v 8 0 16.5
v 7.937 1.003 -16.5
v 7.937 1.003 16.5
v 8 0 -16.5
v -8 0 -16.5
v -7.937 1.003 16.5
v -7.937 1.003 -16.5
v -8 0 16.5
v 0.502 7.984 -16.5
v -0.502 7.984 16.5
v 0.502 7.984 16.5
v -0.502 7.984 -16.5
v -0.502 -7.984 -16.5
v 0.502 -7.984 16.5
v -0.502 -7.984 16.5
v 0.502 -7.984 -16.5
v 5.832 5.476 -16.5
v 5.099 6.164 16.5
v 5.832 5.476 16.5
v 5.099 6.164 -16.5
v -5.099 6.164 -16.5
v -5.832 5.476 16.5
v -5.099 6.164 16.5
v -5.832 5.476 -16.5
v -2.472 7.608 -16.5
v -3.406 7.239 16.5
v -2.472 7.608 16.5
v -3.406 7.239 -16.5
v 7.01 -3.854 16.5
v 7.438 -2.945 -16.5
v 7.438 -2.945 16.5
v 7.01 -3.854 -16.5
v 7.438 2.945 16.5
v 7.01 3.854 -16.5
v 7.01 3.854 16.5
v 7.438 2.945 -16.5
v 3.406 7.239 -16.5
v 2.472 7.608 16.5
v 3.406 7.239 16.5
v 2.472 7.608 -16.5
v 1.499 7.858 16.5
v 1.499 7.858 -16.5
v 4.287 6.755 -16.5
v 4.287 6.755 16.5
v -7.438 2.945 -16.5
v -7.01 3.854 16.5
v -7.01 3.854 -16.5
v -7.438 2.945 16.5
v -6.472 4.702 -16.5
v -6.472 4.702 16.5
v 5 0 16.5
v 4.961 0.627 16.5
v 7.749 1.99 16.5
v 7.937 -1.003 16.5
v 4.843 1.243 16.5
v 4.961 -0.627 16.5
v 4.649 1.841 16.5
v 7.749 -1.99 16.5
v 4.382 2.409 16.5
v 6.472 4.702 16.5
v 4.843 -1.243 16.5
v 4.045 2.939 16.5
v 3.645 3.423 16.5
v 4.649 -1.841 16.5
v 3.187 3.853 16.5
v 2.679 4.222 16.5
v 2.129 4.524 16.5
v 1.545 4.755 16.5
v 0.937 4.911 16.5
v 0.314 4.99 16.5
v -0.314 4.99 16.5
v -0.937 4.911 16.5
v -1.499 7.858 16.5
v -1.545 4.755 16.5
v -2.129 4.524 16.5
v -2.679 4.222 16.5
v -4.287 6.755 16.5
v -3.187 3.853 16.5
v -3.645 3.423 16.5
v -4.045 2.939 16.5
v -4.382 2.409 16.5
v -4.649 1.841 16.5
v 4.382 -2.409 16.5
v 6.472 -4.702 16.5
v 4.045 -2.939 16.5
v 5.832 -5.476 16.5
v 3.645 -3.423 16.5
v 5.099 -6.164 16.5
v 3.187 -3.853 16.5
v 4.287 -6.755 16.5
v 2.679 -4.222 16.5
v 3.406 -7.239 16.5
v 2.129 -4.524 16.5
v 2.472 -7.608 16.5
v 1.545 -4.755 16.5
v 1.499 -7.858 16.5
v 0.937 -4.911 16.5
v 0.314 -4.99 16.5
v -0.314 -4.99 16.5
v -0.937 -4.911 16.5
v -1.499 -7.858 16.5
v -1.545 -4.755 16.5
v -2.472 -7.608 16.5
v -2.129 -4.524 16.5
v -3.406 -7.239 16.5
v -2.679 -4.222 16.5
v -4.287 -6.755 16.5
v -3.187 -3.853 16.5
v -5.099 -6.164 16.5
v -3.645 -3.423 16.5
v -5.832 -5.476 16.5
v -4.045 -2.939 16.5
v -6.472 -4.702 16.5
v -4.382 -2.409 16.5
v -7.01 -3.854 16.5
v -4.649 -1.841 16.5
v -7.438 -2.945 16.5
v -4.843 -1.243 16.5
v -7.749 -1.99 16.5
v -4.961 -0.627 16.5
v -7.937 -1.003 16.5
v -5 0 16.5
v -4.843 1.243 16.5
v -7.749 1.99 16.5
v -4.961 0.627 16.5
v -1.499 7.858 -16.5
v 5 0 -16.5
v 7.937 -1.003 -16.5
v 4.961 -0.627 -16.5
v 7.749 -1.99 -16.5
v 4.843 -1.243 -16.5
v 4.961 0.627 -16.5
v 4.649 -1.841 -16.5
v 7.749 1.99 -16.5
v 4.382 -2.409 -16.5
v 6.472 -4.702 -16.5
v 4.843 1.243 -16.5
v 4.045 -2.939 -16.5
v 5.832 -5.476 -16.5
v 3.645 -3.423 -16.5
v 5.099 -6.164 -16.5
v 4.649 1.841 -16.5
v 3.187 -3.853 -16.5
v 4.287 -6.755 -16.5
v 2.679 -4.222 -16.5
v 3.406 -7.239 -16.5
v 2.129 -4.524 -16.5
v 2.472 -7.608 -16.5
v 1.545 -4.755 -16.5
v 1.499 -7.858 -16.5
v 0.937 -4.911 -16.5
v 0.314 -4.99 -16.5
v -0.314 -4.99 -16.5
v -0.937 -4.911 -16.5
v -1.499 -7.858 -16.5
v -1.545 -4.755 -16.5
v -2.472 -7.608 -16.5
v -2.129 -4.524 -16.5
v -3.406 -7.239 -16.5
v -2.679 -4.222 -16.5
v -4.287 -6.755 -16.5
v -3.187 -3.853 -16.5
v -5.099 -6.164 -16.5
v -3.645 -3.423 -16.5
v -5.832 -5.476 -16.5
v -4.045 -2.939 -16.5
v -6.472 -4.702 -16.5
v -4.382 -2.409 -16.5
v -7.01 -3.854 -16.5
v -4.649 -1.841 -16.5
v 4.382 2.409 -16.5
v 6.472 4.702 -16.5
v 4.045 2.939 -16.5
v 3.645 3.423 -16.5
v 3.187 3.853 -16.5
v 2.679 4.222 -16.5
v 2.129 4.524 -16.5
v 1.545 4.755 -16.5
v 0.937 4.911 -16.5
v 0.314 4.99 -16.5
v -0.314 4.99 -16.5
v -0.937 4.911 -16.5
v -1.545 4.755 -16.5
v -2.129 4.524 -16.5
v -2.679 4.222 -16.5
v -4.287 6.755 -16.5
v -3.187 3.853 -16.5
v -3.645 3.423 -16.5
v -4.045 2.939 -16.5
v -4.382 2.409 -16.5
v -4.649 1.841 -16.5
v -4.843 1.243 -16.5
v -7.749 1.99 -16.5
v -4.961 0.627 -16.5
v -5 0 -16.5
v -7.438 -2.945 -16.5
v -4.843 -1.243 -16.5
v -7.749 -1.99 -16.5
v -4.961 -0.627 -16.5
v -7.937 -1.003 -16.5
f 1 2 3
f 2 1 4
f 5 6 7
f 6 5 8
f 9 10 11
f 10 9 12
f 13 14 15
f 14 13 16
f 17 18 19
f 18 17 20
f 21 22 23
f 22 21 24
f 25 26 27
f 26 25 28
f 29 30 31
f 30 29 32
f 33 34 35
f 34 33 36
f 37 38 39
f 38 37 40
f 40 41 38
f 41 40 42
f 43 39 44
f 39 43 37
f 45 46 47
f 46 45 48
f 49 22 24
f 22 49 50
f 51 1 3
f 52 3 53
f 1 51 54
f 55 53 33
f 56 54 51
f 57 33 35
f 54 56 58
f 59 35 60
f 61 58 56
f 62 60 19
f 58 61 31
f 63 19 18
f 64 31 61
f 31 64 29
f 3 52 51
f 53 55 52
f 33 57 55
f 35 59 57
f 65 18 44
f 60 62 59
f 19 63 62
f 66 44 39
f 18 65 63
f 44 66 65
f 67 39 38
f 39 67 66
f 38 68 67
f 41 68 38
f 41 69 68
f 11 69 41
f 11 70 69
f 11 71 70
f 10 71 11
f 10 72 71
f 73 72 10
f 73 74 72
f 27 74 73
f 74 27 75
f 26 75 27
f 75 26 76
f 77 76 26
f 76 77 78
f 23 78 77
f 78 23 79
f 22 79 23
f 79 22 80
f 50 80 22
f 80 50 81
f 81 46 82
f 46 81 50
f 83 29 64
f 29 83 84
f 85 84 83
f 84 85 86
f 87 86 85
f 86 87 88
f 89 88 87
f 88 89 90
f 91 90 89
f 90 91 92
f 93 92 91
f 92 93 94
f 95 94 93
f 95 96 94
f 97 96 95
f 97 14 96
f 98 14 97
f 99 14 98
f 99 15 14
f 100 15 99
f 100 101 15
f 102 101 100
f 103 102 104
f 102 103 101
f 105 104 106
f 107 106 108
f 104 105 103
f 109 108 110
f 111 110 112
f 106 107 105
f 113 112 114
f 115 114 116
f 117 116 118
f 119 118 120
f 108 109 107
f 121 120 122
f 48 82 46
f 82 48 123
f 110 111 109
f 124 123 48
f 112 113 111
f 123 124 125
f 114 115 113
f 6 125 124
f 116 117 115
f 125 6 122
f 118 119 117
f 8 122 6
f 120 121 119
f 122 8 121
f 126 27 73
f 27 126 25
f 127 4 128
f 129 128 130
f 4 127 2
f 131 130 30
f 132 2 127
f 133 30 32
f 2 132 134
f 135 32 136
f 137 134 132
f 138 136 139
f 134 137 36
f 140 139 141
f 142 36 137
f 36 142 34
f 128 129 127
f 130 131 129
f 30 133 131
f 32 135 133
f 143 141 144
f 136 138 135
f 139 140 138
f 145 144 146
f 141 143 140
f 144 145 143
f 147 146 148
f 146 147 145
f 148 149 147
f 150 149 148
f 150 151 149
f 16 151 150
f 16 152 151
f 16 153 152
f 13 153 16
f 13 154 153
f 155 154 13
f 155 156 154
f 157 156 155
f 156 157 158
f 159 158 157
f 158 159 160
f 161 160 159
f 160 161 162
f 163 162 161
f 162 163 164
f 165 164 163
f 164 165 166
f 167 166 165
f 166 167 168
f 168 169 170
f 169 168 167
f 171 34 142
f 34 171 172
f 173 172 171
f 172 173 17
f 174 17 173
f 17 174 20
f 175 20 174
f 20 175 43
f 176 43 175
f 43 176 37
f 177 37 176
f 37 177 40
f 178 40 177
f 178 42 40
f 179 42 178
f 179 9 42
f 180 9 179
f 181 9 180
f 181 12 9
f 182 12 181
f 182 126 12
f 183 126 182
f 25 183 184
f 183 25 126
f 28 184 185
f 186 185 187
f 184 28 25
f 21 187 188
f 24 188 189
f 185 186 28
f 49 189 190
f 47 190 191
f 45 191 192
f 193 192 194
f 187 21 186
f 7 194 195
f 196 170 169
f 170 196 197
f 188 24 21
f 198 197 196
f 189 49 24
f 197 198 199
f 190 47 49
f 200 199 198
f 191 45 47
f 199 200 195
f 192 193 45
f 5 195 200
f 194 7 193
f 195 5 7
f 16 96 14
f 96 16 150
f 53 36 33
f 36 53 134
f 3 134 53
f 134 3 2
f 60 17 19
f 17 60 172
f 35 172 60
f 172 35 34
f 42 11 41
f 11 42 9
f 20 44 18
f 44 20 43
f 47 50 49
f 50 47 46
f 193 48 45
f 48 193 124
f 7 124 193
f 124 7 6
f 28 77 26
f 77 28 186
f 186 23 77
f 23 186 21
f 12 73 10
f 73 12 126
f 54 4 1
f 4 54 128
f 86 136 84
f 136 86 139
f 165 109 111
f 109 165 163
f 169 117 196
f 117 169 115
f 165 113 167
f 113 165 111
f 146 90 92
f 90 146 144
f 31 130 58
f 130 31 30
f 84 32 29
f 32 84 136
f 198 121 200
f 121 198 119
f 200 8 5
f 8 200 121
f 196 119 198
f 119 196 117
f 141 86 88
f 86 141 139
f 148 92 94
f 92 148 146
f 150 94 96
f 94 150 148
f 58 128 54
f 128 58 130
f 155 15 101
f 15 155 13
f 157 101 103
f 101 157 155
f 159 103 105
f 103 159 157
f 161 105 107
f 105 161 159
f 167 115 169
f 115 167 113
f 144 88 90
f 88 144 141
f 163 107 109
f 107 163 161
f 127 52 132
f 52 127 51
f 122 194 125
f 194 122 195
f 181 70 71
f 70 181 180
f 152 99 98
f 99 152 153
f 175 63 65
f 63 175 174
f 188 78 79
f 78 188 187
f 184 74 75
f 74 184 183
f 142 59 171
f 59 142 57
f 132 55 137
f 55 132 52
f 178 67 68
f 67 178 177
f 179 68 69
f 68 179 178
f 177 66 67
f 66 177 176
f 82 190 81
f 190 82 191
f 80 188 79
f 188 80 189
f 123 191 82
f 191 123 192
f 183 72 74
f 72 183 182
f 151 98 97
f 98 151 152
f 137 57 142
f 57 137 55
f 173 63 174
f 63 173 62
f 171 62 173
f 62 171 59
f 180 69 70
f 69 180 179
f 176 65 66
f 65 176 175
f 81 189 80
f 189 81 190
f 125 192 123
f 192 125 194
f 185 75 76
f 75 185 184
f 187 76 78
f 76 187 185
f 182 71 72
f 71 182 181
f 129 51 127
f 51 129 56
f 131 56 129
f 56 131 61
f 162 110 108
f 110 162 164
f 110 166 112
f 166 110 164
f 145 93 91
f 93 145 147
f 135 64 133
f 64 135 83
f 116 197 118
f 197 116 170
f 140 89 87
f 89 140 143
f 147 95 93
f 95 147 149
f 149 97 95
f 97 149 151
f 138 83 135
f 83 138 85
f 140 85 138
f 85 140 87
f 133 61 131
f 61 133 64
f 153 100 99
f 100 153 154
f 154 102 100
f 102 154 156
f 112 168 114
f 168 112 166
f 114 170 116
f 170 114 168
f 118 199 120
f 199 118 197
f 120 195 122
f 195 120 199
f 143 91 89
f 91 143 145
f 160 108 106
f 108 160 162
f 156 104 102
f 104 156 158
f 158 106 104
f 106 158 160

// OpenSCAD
$fn = 50;


difference() {
	union() {
		translate(v = [0, 0, -16.5000000000]) {
			cylinder(h = 33, r = 8.0000000000);
		}
	}
	union() {
		translate(v = [0, 0, -100.0000000000]) {
			cylinder(h = 200, r = 5.0000000000);
		}
	}
}
